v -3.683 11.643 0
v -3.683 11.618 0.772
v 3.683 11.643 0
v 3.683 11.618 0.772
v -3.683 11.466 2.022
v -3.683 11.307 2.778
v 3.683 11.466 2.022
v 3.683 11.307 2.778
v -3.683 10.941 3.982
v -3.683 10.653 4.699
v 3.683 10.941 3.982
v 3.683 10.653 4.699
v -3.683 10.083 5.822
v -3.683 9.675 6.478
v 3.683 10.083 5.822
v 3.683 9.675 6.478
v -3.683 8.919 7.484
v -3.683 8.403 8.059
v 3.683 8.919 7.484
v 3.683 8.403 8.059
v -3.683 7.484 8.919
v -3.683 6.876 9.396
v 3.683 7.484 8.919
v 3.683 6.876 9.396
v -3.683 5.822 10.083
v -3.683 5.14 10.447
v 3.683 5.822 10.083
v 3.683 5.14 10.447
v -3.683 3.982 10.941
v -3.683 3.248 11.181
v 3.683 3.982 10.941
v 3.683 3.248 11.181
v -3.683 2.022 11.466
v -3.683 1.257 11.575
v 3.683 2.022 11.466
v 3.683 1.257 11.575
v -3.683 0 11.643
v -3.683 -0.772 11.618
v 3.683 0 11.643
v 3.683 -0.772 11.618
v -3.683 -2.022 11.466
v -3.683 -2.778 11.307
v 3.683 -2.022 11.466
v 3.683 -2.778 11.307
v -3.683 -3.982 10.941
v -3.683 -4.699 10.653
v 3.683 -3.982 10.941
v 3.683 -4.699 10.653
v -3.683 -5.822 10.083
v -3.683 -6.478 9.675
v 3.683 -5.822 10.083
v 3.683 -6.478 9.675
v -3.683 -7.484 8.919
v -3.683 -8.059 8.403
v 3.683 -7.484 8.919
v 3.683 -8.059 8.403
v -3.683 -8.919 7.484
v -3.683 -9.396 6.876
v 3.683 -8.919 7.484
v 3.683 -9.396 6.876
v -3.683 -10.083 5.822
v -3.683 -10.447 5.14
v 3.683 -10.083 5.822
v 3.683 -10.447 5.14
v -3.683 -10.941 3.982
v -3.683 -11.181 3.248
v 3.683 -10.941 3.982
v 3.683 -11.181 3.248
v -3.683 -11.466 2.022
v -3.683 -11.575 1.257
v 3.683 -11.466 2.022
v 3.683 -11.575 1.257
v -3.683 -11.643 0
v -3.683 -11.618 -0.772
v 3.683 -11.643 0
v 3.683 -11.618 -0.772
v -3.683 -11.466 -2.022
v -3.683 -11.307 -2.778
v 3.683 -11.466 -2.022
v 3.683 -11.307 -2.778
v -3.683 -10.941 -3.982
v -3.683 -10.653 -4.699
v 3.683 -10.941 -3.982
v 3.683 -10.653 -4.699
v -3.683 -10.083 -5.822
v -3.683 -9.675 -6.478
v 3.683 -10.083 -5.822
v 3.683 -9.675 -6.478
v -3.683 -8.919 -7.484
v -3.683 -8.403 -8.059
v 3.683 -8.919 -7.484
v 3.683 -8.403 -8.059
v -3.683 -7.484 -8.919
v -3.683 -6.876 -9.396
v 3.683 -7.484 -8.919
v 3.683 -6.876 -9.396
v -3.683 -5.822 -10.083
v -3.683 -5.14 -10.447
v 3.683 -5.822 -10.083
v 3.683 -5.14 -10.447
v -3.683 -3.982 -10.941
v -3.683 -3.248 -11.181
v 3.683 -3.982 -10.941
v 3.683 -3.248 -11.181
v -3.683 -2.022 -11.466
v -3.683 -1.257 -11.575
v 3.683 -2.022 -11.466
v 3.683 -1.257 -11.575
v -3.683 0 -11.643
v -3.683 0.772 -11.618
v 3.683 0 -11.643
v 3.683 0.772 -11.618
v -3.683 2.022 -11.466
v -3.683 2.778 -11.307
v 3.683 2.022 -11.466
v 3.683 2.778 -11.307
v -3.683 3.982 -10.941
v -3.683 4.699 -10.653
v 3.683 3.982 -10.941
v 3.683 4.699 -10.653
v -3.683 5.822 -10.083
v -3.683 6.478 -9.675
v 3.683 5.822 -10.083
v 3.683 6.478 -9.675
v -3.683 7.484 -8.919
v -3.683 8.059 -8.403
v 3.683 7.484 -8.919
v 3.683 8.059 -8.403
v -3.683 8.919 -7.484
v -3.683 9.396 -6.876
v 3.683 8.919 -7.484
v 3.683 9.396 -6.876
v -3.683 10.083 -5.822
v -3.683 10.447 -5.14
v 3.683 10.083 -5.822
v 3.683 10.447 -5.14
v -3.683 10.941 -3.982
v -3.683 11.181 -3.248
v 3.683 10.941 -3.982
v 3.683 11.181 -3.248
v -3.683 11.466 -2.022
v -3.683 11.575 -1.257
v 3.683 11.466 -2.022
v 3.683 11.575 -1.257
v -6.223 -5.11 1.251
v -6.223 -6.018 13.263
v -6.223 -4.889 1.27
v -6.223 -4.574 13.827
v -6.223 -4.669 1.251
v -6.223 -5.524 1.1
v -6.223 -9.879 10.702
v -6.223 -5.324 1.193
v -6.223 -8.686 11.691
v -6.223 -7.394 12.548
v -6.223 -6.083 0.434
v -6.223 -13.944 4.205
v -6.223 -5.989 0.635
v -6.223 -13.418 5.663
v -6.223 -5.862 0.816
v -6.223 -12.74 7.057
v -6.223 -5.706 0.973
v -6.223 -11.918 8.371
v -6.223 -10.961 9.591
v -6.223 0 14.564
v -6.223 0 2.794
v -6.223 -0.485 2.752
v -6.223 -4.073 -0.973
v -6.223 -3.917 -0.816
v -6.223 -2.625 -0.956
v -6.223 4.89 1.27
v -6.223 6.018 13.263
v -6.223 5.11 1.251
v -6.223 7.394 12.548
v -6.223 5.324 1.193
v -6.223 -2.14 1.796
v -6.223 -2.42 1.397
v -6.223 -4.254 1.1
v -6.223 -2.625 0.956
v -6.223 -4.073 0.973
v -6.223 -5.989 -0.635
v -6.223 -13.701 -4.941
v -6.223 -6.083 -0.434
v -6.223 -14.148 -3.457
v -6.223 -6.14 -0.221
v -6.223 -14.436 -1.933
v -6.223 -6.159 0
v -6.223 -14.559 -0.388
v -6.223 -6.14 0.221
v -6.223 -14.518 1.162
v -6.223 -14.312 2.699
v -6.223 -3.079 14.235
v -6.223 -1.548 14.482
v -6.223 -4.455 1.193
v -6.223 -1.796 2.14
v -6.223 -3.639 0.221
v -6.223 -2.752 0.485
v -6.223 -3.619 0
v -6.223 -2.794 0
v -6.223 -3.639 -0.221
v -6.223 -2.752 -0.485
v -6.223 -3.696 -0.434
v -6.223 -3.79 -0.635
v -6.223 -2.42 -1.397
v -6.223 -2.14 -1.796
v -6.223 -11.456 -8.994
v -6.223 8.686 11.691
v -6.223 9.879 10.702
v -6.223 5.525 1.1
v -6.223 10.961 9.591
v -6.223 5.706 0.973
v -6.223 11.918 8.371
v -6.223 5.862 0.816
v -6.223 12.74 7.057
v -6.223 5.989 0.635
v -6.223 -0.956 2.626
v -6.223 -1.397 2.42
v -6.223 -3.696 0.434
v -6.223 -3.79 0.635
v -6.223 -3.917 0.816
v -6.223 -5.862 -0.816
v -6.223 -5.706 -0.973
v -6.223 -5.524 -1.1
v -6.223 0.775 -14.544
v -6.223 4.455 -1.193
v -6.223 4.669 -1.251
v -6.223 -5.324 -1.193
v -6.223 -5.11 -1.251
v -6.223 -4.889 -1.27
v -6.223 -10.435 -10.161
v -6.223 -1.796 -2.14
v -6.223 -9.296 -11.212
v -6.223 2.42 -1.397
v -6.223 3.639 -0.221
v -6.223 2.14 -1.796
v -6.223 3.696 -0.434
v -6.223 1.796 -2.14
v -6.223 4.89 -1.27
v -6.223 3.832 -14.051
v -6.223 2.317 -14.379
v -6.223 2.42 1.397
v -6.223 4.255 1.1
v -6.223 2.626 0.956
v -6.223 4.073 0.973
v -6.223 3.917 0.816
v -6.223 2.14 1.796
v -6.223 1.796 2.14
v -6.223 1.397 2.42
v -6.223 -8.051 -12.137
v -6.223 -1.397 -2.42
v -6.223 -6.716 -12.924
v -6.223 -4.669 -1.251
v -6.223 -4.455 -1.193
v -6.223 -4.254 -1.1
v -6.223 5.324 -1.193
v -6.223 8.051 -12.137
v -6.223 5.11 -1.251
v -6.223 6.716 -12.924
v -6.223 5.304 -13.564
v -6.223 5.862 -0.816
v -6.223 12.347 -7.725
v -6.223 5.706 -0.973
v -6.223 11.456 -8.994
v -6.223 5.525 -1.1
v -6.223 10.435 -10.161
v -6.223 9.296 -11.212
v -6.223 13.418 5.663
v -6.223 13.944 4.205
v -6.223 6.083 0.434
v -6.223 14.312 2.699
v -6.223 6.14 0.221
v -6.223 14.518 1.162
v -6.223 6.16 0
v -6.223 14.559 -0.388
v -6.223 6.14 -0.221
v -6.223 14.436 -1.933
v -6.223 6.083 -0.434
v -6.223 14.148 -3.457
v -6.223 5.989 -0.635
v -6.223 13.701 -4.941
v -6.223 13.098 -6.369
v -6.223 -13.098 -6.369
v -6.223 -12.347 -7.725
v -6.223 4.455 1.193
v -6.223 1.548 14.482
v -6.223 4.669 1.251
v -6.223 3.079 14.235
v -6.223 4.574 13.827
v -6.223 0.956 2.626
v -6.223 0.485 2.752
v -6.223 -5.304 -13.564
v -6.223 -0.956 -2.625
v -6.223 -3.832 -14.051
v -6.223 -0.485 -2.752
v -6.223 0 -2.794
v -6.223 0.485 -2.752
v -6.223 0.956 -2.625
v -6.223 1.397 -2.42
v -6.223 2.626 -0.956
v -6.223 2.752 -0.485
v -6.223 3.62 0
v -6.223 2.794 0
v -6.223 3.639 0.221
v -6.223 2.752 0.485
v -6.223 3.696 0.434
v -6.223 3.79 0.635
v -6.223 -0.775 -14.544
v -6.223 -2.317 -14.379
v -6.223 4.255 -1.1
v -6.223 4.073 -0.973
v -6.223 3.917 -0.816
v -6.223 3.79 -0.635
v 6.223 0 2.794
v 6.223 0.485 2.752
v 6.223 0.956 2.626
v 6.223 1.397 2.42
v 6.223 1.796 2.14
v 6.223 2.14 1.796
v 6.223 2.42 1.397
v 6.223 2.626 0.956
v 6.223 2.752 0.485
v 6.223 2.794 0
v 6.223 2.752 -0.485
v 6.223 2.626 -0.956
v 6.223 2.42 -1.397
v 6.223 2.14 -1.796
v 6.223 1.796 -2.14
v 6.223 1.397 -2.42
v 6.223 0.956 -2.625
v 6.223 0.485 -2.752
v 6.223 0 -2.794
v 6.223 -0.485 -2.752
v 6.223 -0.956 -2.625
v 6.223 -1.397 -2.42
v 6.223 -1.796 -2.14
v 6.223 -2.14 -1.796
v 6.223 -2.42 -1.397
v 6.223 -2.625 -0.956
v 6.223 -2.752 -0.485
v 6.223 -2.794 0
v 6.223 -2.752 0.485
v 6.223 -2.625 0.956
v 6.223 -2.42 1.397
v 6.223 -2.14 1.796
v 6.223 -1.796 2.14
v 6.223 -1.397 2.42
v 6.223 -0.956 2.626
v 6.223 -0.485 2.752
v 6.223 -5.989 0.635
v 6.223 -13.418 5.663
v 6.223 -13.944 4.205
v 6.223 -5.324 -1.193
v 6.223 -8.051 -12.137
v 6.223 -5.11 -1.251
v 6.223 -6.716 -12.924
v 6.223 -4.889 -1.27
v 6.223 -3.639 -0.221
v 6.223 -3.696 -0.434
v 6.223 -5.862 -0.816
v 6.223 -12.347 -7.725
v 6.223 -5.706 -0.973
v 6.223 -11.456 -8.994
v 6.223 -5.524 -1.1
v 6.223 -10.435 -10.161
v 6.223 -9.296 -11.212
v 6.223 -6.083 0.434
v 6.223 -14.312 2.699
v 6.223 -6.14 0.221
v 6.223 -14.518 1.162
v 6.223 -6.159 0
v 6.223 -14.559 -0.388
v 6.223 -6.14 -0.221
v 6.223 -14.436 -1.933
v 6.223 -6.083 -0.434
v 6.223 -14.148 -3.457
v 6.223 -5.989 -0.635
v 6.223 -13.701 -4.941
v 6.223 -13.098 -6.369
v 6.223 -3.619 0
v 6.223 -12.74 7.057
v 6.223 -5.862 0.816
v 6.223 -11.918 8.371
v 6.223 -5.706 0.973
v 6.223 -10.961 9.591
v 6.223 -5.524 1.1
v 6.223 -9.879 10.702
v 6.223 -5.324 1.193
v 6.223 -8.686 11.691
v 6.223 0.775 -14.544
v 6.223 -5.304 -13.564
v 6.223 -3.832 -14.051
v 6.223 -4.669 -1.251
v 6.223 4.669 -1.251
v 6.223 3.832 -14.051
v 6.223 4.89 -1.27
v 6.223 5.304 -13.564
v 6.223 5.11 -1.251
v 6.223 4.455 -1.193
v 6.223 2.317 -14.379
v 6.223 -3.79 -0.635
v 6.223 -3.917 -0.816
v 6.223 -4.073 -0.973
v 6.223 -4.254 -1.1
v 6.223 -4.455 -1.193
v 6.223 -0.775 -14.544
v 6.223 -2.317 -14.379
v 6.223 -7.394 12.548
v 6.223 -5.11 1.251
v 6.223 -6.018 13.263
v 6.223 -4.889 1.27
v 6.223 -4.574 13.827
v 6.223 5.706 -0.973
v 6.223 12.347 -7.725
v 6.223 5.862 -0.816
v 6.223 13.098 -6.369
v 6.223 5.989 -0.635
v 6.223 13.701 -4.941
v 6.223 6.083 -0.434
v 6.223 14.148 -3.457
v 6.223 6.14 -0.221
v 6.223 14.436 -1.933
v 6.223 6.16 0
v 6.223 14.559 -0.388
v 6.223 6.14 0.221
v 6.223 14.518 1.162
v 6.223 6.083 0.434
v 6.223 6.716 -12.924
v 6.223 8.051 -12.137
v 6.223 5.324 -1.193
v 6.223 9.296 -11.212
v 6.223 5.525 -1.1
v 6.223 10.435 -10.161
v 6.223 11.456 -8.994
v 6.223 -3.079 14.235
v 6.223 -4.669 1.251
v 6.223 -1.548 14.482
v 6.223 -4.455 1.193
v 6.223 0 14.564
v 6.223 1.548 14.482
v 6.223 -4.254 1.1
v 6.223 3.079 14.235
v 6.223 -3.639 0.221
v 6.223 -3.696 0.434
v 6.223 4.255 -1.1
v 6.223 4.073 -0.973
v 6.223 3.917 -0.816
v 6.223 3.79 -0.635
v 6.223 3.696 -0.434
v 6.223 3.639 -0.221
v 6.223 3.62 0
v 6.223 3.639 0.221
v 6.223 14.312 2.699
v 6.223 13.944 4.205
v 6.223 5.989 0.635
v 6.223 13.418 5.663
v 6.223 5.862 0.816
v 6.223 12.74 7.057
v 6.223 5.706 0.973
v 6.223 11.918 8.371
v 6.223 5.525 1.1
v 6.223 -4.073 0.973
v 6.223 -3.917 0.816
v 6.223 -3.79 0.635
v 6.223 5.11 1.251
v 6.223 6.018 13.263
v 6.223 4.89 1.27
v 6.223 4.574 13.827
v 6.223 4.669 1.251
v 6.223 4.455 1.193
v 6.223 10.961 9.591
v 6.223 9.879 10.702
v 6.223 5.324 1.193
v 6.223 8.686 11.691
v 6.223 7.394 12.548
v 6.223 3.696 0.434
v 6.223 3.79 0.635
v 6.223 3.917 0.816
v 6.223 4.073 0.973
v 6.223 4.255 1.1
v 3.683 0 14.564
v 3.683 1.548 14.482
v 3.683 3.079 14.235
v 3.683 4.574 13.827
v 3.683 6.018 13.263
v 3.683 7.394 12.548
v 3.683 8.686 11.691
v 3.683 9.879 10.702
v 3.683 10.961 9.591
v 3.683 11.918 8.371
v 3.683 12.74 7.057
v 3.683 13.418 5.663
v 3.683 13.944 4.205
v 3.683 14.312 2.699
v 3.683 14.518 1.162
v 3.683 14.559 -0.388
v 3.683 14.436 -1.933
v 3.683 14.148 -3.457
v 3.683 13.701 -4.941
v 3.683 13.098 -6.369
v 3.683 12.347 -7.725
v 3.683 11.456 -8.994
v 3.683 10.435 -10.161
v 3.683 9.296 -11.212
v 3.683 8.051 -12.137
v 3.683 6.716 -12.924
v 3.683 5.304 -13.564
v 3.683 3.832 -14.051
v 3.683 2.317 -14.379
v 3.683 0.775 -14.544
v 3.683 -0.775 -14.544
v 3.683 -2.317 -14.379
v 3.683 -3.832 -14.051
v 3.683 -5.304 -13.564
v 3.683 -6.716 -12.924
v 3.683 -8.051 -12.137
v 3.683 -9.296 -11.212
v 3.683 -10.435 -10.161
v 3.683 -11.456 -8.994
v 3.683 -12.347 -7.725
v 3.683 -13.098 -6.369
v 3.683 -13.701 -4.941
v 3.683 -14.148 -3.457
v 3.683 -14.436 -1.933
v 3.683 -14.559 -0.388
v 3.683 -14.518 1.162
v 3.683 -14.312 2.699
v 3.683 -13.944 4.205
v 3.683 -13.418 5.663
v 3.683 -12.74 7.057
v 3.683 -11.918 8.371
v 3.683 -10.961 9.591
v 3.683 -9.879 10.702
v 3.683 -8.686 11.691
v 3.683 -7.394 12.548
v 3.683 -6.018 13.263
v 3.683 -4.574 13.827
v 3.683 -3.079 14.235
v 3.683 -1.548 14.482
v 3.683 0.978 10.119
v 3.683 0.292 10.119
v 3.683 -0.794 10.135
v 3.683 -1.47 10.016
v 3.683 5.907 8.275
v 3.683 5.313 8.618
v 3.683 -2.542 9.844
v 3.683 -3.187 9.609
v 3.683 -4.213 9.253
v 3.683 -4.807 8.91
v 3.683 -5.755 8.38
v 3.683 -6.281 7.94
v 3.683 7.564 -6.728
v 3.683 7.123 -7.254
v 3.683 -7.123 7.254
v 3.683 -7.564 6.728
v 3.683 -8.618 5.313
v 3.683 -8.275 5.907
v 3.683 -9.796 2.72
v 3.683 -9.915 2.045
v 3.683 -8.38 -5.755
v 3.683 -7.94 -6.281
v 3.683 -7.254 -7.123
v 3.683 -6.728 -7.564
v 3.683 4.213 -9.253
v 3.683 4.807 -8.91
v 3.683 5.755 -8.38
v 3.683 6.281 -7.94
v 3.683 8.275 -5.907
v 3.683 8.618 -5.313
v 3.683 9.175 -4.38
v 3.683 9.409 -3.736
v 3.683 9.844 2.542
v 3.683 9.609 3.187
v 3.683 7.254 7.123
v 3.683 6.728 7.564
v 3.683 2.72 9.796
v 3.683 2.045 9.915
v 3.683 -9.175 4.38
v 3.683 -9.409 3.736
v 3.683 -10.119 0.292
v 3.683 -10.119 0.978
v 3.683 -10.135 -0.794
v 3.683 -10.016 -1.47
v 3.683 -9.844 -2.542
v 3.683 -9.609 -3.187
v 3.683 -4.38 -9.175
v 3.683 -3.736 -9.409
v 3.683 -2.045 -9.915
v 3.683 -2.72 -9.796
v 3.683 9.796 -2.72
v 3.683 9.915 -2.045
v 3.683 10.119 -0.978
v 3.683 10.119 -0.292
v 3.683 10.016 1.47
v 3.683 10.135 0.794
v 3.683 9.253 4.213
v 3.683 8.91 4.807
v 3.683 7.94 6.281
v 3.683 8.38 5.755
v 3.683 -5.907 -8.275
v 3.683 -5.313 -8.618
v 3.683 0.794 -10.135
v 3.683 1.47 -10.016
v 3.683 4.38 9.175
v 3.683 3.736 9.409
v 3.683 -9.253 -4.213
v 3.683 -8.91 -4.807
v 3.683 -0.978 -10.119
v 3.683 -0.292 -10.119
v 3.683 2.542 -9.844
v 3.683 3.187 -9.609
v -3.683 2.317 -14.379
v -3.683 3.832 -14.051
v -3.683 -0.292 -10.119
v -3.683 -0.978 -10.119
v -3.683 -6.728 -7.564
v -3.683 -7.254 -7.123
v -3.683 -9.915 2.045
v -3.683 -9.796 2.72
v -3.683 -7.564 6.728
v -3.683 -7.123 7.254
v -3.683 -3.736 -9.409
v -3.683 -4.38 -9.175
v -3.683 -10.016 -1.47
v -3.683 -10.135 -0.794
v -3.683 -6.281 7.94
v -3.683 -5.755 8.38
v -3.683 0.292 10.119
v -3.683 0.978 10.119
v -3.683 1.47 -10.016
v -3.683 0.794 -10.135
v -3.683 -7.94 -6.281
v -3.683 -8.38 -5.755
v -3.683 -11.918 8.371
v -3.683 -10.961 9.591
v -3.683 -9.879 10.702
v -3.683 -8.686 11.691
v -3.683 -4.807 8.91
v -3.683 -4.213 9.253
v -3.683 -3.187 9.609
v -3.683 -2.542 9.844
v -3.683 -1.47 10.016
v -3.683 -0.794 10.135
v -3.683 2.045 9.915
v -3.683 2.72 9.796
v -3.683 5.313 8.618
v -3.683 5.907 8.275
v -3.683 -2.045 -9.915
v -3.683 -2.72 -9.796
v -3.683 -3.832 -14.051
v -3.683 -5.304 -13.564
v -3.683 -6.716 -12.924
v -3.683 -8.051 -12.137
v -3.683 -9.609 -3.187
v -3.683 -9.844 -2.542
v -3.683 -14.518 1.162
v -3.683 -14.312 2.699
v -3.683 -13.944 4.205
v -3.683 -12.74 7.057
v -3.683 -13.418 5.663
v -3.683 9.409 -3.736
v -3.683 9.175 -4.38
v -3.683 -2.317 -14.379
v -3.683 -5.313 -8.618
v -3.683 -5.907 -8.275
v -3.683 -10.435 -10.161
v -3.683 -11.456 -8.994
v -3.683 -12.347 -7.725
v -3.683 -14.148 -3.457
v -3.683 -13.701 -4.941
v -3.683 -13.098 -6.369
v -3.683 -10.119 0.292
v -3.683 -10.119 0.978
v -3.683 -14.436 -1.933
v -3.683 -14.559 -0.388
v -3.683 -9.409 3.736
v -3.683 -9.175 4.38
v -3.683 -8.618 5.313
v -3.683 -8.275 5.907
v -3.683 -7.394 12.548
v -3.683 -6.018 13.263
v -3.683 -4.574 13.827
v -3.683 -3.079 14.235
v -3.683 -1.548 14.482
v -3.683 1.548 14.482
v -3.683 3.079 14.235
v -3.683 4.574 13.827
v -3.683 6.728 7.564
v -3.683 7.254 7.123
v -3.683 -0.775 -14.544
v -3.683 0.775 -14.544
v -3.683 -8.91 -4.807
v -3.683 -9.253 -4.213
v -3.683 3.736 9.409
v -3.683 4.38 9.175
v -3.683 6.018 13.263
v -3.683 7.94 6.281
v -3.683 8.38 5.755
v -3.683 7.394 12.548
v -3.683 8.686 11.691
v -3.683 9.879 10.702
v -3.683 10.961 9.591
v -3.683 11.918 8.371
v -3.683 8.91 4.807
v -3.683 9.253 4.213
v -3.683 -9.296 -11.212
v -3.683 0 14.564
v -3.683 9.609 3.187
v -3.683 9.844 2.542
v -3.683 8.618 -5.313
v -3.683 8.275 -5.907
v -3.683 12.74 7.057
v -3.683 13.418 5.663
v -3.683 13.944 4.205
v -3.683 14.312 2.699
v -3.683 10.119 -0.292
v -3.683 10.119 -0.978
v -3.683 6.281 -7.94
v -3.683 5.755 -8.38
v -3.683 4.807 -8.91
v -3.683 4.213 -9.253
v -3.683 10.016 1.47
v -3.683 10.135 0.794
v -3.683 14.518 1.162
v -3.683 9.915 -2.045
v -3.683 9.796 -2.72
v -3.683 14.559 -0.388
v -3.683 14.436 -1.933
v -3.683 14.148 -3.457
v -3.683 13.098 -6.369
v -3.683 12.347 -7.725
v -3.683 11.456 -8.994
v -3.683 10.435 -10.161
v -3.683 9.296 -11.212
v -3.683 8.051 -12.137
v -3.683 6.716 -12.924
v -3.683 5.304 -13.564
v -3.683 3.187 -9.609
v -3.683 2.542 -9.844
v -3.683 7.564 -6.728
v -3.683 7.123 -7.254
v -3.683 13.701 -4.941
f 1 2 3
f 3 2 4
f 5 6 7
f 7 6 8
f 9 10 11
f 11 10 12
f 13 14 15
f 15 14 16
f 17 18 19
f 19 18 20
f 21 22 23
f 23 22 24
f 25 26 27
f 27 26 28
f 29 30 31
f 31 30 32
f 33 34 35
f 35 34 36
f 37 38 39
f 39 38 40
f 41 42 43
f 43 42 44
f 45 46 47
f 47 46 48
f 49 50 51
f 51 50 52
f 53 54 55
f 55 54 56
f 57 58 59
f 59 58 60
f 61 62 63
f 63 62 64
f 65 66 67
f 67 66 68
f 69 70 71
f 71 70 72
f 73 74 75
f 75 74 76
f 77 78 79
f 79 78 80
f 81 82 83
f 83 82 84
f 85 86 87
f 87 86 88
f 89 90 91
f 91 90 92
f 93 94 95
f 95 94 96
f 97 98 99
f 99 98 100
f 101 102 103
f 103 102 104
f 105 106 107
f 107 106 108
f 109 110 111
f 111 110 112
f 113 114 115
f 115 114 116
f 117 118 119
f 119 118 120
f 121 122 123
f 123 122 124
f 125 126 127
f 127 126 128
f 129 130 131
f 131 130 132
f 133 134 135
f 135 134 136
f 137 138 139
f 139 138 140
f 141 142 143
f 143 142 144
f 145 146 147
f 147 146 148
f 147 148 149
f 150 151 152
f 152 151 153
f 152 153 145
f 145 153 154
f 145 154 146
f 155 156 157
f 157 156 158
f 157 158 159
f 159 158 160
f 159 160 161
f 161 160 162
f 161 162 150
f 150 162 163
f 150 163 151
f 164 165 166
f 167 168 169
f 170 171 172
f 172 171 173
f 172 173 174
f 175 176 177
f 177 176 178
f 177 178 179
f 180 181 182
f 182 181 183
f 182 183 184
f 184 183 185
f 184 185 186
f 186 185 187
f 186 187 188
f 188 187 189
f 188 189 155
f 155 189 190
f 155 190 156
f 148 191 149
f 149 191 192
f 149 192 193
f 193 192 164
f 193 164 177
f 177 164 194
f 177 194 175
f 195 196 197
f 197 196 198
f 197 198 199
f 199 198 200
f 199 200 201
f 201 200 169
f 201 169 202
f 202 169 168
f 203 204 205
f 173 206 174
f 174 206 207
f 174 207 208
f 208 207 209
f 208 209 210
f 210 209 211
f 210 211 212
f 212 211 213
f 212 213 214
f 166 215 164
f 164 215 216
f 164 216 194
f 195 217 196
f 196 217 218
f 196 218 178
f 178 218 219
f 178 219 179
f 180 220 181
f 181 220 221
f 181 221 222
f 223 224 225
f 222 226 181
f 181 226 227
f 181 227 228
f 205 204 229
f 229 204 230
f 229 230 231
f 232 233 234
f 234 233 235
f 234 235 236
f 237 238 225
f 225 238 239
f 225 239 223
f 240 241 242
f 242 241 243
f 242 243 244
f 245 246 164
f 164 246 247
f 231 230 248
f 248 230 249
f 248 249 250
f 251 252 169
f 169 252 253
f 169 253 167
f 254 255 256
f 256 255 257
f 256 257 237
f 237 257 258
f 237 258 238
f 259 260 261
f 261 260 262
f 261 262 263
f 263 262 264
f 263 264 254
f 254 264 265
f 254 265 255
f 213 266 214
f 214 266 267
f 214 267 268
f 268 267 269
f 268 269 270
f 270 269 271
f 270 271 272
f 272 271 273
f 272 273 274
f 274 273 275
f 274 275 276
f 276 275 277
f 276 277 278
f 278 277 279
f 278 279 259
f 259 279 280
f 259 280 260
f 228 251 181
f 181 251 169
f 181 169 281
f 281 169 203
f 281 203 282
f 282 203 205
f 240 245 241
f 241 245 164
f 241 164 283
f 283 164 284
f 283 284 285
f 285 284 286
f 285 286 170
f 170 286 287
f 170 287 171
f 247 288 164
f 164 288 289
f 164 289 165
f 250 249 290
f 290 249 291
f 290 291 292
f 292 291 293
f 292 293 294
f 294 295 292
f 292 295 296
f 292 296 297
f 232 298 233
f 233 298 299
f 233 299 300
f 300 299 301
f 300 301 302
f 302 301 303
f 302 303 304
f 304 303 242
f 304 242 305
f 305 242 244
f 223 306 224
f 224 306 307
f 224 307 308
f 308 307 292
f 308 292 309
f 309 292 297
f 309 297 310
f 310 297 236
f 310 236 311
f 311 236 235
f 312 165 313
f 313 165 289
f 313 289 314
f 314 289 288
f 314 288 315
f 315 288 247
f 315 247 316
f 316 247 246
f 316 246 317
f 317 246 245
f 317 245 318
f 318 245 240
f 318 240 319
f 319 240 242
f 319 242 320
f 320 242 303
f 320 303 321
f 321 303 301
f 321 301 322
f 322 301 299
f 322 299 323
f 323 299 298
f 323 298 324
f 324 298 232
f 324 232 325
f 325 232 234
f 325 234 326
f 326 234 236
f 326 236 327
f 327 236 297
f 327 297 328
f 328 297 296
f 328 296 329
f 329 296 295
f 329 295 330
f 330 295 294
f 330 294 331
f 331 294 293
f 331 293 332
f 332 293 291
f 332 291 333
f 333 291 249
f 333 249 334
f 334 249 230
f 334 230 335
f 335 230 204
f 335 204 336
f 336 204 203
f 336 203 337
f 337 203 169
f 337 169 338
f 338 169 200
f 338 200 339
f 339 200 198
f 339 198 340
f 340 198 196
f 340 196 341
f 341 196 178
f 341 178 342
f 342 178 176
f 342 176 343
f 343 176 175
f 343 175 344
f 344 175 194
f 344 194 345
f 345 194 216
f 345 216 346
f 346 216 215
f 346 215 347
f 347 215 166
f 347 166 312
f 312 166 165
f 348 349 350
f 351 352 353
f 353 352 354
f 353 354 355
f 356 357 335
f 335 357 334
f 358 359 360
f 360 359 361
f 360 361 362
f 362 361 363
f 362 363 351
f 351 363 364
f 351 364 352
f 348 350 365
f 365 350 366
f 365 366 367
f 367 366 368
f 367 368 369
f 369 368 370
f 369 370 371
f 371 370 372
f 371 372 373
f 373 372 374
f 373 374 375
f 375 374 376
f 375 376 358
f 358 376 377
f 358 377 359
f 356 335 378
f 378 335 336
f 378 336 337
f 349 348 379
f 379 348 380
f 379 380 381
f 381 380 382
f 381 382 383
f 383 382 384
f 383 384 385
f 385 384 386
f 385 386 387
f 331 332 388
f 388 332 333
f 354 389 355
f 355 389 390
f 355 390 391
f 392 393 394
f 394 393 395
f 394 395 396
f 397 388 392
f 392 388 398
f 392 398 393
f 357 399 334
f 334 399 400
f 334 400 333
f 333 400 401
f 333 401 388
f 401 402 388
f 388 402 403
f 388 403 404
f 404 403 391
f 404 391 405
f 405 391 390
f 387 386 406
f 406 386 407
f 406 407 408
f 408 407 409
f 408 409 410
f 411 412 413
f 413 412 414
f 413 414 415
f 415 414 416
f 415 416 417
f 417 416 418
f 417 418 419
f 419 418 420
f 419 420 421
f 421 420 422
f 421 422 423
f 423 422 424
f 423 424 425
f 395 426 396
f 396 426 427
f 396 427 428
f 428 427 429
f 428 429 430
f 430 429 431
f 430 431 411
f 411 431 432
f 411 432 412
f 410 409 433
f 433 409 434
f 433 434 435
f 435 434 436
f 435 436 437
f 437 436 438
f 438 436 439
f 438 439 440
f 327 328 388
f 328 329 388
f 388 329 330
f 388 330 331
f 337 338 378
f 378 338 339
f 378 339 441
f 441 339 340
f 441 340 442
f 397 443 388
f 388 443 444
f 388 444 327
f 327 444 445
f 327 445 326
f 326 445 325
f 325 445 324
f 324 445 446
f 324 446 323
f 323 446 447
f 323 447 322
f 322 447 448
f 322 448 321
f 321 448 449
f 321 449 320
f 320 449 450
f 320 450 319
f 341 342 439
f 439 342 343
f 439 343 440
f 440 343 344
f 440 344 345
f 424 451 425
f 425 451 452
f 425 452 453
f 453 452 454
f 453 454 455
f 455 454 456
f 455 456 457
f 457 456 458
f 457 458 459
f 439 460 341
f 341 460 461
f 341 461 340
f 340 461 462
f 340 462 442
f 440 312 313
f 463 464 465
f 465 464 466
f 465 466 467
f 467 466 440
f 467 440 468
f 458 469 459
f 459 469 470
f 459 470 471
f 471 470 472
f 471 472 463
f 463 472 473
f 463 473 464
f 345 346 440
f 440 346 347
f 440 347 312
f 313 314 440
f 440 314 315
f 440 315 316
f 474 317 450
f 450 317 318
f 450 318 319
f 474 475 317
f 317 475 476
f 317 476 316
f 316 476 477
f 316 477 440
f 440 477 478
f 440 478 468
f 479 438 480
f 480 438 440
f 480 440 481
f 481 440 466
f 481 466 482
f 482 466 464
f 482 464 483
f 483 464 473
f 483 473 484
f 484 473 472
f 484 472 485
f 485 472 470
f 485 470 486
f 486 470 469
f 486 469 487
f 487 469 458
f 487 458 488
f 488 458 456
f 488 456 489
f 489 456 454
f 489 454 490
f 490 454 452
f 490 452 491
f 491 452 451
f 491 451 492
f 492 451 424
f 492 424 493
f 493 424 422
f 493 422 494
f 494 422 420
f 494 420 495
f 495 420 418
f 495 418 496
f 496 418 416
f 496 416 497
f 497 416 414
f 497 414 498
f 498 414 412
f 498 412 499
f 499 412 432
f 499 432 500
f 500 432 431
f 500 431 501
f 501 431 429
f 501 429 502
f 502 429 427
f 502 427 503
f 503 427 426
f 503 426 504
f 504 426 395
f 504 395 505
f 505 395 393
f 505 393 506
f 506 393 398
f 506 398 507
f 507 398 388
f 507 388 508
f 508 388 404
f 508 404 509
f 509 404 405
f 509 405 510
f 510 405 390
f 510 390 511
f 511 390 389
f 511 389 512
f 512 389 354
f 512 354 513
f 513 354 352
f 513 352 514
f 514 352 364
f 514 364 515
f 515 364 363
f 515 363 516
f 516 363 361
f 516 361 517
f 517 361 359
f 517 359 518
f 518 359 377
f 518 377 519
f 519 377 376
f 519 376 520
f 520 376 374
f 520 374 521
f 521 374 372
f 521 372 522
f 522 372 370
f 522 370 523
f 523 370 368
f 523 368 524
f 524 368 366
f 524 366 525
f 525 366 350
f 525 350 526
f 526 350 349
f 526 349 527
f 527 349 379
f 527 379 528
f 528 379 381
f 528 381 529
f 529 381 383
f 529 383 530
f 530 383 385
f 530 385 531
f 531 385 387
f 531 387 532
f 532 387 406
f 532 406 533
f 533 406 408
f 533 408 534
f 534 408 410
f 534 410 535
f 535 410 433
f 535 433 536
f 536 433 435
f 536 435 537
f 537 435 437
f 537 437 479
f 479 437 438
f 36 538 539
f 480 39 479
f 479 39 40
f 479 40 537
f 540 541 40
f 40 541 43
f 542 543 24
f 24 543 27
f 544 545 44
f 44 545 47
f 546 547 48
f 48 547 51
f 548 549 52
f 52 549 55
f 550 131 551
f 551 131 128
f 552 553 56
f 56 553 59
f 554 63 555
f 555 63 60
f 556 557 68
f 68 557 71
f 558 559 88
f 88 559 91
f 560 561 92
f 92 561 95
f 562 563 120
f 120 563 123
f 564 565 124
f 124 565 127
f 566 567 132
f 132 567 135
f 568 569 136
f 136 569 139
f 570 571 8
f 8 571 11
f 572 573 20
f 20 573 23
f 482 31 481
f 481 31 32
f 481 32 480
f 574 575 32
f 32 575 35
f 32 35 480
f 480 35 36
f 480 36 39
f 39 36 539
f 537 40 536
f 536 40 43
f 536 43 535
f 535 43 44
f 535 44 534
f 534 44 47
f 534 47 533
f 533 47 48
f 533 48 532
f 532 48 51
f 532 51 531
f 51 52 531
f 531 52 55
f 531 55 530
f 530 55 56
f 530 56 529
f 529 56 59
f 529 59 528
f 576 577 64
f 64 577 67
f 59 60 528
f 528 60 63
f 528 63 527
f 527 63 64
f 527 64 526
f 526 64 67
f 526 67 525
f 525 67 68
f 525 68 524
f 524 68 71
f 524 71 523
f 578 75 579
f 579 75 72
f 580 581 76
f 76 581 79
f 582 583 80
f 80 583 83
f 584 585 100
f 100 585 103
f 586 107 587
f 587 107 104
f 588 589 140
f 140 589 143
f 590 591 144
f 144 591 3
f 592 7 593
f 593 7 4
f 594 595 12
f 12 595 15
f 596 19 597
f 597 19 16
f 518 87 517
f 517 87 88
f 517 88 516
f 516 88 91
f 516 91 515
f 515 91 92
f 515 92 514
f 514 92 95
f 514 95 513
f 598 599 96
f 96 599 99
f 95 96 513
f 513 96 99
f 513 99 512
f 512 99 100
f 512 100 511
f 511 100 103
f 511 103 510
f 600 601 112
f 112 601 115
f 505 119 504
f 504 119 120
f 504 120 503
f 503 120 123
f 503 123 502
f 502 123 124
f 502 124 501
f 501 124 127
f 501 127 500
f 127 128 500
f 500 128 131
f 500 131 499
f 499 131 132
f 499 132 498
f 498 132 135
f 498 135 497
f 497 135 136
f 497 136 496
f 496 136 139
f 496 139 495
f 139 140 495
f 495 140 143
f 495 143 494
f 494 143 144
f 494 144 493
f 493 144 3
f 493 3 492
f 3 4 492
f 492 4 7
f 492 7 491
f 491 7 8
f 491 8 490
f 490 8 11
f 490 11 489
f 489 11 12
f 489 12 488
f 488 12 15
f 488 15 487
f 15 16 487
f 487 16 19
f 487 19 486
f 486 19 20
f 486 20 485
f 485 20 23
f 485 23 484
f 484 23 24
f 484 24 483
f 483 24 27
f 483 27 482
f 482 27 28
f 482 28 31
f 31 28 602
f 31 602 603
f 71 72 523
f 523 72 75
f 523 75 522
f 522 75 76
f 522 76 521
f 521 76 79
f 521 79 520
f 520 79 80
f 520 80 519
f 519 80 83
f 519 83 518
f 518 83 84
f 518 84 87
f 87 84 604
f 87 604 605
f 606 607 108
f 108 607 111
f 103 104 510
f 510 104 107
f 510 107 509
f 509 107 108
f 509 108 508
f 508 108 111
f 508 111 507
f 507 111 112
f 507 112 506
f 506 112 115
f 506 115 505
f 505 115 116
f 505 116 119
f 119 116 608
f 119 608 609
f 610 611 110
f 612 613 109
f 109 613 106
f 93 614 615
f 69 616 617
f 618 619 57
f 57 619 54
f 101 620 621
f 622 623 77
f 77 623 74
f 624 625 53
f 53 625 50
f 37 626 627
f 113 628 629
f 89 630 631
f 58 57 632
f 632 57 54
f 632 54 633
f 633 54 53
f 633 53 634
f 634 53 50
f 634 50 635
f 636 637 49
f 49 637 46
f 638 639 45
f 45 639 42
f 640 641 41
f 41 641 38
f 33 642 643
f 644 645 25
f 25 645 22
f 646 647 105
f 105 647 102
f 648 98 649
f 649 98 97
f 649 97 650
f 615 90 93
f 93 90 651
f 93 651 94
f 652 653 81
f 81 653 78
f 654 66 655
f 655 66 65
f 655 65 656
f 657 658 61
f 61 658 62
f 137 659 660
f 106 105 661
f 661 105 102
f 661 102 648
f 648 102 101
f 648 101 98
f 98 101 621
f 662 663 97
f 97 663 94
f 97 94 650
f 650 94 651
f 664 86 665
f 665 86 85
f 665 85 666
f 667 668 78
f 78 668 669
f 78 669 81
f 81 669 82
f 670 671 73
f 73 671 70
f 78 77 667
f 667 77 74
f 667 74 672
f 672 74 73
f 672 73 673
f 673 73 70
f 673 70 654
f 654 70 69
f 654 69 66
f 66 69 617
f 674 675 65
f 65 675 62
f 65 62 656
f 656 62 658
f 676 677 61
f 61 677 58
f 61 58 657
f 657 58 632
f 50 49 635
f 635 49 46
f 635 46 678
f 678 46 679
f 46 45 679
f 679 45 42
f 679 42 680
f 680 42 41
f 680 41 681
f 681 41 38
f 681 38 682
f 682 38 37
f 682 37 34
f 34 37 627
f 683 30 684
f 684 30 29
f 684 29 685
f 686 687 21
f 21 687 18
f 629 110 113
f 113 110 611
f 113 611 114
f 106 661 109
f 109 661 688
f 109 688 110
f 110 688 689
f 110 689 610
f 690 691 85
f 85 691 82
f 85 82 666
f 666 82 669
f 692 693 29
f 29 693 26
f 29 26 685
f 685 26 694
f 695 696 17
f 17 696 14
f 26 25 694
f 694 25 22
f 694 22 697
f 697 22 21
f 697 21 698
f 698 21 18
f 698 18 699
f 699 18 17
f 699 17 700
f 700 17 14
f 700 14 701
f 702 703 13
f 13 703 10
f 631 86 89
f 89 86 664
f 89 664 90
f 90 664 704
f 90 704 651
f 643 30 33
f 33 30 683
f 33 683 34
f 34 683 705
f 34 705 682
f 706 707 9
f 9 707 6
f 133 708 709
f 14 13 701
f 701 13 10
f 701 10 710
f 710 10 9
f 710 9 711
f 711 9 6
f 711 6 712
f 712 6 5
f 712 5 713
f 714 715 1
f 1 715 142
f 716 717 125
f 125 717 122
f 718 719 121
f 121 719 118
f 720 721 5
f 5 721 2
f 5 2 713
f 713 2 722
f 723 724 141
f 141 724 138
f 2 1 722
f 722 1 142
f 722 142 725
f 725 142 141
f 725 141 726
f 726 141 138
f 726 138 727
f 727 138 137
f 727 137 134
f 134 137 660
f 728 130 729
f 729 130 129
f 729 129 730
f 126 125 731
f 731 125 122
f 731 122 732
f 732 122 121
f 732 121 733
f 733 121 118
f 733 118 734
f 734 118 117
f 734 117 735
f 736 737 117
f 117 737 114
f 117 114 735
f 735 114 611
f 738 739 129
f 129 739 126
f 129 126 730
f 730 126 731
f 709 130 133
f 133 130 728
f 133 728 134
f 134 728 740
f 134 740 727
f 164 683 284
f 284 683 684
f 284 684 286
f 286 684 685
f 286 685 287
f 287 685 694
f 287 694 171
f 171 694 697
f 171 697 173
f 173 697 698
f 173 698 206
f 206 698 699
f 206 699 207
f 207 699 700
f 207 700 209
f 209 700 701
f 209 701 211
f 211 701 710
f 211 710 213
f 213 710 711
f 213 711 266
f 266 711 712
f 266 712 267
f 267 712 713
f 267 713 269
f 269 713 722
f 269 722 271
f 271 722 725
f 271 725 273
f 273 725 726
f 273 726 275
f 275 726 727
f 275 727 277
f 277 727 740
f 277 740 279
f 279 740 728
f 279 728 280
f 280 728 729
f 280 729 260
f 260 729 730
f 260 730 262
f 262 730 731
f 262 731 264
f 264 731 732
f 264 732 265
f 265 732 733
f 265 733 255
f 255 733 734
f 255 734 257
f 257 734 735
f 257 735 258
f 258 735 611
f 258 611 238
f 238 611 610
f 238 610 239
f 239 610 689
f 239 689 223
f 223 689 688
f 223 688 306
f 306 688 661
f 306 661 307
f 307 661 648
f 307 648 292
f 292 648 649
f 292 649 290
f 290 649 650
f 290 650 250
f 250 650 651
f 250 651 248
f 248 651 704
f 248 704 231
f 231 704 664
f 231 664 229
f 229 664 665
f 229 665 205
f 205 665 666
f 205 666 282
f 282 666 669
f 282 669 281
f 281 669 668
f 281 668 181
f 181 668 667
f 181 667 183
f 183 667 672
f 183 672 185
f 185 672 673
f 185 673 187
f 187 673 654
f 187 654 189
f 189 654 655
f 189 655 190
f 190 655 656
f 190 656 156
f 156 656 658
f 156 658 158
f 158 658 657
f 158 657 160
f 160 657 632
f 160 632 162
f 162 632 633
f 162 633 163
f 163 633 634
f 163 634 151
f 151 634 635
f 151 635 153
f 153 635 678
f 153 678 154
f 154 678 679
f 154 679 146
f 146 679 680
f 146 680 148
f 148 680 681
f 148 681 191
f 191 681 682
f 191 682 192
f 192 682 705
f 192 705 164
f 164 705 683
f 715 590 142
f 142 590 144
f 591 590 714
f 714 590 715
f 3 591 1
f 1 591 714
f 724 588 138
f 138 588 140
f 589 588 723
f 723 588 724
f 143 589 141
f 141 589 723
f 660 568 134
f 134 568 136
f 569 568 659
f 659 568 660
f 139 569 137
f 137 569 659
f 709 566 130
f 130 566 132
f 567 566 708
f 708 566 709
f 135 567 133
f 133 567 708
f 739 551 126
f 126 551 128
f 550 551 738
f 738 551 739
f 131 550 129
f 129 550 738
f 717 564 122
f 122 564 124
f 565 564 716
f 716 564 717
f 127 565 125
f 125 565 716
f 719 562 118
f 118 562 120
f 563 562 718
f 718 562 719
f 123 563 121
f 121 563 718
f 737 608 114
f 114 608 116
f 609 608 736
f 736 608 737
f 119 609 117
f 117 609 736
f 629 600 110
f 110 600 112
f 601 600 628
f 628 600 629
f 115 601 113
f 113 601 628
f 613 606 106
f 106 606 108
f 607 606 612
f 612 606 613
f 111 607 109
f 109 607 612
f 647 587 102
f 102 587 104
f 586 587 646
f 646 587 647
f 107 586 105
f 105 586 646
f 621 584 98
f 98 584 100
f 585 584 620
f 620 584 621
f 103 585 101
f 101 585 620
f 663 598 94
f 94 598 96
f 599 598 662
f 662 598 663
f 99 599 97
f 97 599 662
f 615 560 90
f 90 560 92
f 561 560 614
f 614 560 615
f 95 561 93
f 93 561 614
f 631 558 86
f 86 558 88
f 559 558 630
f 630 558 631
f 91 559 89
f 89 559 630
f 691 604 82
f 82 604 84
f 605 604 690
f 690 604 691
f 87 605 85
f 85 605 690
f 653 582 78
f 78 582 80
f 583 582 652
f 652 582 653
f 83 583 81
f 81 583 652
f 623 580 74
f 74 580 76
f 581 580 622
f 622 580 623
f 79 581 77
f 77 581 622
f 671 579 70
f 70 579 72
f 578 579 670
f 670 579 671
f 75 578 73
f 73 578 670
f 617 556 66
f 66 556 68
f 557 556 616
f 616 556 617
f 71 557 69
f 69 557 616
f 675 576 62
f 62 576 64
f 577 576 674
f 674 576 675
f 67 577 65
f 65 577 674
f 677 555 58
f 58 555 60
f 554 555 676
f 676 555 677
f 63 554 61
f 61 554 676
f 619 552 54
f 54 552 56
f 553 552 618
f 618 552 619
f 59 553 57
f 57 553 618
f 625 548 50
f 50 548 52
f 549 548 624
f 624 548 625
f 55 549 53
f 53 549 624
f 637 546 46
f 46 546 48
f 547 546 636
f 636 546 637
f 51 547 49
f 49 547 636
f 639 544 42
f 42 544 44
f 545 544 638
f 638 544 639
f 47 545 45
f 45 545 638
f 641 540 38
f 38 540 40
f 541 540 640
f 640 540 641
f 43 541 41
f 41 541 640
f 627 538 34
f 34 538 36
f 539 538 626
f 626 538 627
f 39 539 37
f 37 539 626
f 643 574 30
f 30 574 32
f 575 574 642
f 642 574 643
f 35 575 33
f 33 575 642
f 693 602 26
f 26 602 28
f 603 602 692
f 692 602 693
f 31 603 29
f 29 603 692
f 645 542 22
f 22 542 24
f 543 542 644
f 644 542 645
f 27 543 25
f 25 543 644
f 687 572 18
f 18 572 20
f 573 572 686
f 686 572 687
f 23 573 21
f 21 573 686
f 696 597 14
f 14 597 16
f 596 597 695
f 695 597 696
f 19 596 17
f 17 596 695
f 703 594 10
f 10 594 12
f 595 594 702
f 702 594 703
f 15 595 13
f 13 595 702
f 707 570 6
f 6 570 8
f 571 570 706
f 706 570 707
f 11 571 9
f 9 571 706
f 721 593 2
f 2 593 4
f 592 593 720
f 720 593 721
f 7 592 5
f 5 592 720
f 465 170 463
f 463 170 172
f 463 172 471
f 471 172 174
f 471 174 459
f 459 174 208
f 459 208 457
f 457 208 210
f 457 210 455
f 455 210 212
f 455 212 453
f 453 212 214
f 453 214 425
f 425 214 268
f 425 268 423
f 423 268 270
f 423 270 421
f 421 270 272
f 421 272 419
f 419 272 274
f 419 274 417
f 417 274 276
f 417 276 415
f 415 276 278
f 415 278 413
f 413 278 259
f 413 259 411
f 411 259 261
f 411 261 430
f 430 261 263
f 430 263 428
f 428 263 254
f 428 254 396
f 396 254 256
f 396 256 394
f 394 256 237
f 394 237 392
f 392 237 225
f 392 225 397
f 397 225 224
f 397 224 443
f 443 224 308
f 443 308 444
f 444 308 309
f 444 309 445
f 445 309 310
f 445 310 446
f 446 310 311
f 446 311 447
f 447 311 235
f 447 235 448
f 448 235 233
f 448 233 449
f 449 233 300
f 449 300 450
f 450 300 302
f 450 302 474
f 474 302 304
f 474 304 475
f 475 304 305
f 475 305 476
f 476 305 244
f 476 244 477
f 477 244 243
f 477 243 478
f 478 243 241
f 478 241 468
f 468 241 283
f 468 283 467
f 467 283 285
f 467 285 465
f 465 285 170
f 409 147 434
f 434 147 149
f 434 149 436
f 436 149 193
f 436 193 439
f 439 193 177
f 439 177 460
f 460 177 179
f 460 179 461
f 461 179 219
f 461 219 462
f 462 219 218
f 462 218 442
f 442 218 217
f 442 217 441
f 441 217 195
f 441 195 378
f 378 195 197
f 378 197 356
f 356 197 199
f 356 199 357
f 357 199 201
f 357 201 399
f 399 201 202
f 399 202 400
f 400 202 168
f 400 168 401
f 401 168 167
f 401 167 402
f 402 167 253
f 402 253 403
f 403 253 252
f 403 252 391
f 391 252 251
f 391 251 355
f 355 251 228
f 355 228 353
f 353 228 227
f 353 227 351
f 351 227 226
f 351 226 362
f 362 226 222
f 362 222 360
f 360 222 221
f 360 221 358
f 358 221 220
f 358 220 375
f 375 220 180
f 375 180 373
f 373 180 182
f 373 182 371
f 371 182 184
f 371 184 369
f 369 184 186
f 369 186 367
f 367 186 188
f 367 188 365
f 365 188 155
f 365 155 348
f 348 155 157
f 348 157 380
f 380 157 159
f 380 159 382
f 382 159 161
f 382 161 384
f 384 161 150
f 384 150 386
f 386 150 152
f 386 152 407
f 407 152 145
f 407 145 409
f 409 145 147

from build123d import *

# Parameters (mm, degrees)
CUT_EXTRUDE1_DEPTH = 7.366
CIRPATTERN1_COUNT  = 36
SKETCH5_R          = 1.27
CUT_EXTRUDE2_DEPTH = 22.86


with BuildPart() as part:
    # Sketch2 → Revolve1 (revolve)
    with BuildSketch(Plane.XY):
        Polygon((-6.223, 2.794), (6.223, 2.794), (6.223, 14.56436), (3.683, 14.56436), (3.683, 11.64336), (-3.683, 11.64336), (-3.683, 14.56436), (-6.223, 14.56436), align=None)
    revolve(axis=Axis((-20.14780731, 0, 0), (1, 0, 0)))

    # Sketch3 → Cut-Extrude1 (cut)
    with BuildSketch(Plane.ZY.offset(-3.683)):
        Polygon((-1.27, 11.64336), (-0.9779, 10.11936), (-0.2921, 10.11936), (0, 11.64336), align=None)
    cut_extrude1 = extrude(amount=CUT_EXTRUDE1_DEPTH, mode=Mode.SUBTRACT)

    # CirPattern1: Cut-Extrude1 ×36 about axis
    cirpattern1_axis = Axis((0, 0, 0), (1, 0, 0))
    for i in range(1, CIRPATTERN1_COUNT):
        add(cut_extrude1.rotate(cirpattern1_axis, i * 360 / CIRPATTERN1_COUNT), mode=Mode.SUBTRACT)

    # Sketch5 → Cut-Extrude2 (cut)
    with BuildSketch(Plane.ZY.offset(6.223)):
        with Locations((0, 4.8895)):
            Circle(SKETCH5_R)
        with Locations((0, -4.8895)):
            Circle(SKETCH5_R)
    extrude(amount=-CUT_EXTRUDE2_DEPTH, mode=Mode.SUBTRACT)


solid = part.part
